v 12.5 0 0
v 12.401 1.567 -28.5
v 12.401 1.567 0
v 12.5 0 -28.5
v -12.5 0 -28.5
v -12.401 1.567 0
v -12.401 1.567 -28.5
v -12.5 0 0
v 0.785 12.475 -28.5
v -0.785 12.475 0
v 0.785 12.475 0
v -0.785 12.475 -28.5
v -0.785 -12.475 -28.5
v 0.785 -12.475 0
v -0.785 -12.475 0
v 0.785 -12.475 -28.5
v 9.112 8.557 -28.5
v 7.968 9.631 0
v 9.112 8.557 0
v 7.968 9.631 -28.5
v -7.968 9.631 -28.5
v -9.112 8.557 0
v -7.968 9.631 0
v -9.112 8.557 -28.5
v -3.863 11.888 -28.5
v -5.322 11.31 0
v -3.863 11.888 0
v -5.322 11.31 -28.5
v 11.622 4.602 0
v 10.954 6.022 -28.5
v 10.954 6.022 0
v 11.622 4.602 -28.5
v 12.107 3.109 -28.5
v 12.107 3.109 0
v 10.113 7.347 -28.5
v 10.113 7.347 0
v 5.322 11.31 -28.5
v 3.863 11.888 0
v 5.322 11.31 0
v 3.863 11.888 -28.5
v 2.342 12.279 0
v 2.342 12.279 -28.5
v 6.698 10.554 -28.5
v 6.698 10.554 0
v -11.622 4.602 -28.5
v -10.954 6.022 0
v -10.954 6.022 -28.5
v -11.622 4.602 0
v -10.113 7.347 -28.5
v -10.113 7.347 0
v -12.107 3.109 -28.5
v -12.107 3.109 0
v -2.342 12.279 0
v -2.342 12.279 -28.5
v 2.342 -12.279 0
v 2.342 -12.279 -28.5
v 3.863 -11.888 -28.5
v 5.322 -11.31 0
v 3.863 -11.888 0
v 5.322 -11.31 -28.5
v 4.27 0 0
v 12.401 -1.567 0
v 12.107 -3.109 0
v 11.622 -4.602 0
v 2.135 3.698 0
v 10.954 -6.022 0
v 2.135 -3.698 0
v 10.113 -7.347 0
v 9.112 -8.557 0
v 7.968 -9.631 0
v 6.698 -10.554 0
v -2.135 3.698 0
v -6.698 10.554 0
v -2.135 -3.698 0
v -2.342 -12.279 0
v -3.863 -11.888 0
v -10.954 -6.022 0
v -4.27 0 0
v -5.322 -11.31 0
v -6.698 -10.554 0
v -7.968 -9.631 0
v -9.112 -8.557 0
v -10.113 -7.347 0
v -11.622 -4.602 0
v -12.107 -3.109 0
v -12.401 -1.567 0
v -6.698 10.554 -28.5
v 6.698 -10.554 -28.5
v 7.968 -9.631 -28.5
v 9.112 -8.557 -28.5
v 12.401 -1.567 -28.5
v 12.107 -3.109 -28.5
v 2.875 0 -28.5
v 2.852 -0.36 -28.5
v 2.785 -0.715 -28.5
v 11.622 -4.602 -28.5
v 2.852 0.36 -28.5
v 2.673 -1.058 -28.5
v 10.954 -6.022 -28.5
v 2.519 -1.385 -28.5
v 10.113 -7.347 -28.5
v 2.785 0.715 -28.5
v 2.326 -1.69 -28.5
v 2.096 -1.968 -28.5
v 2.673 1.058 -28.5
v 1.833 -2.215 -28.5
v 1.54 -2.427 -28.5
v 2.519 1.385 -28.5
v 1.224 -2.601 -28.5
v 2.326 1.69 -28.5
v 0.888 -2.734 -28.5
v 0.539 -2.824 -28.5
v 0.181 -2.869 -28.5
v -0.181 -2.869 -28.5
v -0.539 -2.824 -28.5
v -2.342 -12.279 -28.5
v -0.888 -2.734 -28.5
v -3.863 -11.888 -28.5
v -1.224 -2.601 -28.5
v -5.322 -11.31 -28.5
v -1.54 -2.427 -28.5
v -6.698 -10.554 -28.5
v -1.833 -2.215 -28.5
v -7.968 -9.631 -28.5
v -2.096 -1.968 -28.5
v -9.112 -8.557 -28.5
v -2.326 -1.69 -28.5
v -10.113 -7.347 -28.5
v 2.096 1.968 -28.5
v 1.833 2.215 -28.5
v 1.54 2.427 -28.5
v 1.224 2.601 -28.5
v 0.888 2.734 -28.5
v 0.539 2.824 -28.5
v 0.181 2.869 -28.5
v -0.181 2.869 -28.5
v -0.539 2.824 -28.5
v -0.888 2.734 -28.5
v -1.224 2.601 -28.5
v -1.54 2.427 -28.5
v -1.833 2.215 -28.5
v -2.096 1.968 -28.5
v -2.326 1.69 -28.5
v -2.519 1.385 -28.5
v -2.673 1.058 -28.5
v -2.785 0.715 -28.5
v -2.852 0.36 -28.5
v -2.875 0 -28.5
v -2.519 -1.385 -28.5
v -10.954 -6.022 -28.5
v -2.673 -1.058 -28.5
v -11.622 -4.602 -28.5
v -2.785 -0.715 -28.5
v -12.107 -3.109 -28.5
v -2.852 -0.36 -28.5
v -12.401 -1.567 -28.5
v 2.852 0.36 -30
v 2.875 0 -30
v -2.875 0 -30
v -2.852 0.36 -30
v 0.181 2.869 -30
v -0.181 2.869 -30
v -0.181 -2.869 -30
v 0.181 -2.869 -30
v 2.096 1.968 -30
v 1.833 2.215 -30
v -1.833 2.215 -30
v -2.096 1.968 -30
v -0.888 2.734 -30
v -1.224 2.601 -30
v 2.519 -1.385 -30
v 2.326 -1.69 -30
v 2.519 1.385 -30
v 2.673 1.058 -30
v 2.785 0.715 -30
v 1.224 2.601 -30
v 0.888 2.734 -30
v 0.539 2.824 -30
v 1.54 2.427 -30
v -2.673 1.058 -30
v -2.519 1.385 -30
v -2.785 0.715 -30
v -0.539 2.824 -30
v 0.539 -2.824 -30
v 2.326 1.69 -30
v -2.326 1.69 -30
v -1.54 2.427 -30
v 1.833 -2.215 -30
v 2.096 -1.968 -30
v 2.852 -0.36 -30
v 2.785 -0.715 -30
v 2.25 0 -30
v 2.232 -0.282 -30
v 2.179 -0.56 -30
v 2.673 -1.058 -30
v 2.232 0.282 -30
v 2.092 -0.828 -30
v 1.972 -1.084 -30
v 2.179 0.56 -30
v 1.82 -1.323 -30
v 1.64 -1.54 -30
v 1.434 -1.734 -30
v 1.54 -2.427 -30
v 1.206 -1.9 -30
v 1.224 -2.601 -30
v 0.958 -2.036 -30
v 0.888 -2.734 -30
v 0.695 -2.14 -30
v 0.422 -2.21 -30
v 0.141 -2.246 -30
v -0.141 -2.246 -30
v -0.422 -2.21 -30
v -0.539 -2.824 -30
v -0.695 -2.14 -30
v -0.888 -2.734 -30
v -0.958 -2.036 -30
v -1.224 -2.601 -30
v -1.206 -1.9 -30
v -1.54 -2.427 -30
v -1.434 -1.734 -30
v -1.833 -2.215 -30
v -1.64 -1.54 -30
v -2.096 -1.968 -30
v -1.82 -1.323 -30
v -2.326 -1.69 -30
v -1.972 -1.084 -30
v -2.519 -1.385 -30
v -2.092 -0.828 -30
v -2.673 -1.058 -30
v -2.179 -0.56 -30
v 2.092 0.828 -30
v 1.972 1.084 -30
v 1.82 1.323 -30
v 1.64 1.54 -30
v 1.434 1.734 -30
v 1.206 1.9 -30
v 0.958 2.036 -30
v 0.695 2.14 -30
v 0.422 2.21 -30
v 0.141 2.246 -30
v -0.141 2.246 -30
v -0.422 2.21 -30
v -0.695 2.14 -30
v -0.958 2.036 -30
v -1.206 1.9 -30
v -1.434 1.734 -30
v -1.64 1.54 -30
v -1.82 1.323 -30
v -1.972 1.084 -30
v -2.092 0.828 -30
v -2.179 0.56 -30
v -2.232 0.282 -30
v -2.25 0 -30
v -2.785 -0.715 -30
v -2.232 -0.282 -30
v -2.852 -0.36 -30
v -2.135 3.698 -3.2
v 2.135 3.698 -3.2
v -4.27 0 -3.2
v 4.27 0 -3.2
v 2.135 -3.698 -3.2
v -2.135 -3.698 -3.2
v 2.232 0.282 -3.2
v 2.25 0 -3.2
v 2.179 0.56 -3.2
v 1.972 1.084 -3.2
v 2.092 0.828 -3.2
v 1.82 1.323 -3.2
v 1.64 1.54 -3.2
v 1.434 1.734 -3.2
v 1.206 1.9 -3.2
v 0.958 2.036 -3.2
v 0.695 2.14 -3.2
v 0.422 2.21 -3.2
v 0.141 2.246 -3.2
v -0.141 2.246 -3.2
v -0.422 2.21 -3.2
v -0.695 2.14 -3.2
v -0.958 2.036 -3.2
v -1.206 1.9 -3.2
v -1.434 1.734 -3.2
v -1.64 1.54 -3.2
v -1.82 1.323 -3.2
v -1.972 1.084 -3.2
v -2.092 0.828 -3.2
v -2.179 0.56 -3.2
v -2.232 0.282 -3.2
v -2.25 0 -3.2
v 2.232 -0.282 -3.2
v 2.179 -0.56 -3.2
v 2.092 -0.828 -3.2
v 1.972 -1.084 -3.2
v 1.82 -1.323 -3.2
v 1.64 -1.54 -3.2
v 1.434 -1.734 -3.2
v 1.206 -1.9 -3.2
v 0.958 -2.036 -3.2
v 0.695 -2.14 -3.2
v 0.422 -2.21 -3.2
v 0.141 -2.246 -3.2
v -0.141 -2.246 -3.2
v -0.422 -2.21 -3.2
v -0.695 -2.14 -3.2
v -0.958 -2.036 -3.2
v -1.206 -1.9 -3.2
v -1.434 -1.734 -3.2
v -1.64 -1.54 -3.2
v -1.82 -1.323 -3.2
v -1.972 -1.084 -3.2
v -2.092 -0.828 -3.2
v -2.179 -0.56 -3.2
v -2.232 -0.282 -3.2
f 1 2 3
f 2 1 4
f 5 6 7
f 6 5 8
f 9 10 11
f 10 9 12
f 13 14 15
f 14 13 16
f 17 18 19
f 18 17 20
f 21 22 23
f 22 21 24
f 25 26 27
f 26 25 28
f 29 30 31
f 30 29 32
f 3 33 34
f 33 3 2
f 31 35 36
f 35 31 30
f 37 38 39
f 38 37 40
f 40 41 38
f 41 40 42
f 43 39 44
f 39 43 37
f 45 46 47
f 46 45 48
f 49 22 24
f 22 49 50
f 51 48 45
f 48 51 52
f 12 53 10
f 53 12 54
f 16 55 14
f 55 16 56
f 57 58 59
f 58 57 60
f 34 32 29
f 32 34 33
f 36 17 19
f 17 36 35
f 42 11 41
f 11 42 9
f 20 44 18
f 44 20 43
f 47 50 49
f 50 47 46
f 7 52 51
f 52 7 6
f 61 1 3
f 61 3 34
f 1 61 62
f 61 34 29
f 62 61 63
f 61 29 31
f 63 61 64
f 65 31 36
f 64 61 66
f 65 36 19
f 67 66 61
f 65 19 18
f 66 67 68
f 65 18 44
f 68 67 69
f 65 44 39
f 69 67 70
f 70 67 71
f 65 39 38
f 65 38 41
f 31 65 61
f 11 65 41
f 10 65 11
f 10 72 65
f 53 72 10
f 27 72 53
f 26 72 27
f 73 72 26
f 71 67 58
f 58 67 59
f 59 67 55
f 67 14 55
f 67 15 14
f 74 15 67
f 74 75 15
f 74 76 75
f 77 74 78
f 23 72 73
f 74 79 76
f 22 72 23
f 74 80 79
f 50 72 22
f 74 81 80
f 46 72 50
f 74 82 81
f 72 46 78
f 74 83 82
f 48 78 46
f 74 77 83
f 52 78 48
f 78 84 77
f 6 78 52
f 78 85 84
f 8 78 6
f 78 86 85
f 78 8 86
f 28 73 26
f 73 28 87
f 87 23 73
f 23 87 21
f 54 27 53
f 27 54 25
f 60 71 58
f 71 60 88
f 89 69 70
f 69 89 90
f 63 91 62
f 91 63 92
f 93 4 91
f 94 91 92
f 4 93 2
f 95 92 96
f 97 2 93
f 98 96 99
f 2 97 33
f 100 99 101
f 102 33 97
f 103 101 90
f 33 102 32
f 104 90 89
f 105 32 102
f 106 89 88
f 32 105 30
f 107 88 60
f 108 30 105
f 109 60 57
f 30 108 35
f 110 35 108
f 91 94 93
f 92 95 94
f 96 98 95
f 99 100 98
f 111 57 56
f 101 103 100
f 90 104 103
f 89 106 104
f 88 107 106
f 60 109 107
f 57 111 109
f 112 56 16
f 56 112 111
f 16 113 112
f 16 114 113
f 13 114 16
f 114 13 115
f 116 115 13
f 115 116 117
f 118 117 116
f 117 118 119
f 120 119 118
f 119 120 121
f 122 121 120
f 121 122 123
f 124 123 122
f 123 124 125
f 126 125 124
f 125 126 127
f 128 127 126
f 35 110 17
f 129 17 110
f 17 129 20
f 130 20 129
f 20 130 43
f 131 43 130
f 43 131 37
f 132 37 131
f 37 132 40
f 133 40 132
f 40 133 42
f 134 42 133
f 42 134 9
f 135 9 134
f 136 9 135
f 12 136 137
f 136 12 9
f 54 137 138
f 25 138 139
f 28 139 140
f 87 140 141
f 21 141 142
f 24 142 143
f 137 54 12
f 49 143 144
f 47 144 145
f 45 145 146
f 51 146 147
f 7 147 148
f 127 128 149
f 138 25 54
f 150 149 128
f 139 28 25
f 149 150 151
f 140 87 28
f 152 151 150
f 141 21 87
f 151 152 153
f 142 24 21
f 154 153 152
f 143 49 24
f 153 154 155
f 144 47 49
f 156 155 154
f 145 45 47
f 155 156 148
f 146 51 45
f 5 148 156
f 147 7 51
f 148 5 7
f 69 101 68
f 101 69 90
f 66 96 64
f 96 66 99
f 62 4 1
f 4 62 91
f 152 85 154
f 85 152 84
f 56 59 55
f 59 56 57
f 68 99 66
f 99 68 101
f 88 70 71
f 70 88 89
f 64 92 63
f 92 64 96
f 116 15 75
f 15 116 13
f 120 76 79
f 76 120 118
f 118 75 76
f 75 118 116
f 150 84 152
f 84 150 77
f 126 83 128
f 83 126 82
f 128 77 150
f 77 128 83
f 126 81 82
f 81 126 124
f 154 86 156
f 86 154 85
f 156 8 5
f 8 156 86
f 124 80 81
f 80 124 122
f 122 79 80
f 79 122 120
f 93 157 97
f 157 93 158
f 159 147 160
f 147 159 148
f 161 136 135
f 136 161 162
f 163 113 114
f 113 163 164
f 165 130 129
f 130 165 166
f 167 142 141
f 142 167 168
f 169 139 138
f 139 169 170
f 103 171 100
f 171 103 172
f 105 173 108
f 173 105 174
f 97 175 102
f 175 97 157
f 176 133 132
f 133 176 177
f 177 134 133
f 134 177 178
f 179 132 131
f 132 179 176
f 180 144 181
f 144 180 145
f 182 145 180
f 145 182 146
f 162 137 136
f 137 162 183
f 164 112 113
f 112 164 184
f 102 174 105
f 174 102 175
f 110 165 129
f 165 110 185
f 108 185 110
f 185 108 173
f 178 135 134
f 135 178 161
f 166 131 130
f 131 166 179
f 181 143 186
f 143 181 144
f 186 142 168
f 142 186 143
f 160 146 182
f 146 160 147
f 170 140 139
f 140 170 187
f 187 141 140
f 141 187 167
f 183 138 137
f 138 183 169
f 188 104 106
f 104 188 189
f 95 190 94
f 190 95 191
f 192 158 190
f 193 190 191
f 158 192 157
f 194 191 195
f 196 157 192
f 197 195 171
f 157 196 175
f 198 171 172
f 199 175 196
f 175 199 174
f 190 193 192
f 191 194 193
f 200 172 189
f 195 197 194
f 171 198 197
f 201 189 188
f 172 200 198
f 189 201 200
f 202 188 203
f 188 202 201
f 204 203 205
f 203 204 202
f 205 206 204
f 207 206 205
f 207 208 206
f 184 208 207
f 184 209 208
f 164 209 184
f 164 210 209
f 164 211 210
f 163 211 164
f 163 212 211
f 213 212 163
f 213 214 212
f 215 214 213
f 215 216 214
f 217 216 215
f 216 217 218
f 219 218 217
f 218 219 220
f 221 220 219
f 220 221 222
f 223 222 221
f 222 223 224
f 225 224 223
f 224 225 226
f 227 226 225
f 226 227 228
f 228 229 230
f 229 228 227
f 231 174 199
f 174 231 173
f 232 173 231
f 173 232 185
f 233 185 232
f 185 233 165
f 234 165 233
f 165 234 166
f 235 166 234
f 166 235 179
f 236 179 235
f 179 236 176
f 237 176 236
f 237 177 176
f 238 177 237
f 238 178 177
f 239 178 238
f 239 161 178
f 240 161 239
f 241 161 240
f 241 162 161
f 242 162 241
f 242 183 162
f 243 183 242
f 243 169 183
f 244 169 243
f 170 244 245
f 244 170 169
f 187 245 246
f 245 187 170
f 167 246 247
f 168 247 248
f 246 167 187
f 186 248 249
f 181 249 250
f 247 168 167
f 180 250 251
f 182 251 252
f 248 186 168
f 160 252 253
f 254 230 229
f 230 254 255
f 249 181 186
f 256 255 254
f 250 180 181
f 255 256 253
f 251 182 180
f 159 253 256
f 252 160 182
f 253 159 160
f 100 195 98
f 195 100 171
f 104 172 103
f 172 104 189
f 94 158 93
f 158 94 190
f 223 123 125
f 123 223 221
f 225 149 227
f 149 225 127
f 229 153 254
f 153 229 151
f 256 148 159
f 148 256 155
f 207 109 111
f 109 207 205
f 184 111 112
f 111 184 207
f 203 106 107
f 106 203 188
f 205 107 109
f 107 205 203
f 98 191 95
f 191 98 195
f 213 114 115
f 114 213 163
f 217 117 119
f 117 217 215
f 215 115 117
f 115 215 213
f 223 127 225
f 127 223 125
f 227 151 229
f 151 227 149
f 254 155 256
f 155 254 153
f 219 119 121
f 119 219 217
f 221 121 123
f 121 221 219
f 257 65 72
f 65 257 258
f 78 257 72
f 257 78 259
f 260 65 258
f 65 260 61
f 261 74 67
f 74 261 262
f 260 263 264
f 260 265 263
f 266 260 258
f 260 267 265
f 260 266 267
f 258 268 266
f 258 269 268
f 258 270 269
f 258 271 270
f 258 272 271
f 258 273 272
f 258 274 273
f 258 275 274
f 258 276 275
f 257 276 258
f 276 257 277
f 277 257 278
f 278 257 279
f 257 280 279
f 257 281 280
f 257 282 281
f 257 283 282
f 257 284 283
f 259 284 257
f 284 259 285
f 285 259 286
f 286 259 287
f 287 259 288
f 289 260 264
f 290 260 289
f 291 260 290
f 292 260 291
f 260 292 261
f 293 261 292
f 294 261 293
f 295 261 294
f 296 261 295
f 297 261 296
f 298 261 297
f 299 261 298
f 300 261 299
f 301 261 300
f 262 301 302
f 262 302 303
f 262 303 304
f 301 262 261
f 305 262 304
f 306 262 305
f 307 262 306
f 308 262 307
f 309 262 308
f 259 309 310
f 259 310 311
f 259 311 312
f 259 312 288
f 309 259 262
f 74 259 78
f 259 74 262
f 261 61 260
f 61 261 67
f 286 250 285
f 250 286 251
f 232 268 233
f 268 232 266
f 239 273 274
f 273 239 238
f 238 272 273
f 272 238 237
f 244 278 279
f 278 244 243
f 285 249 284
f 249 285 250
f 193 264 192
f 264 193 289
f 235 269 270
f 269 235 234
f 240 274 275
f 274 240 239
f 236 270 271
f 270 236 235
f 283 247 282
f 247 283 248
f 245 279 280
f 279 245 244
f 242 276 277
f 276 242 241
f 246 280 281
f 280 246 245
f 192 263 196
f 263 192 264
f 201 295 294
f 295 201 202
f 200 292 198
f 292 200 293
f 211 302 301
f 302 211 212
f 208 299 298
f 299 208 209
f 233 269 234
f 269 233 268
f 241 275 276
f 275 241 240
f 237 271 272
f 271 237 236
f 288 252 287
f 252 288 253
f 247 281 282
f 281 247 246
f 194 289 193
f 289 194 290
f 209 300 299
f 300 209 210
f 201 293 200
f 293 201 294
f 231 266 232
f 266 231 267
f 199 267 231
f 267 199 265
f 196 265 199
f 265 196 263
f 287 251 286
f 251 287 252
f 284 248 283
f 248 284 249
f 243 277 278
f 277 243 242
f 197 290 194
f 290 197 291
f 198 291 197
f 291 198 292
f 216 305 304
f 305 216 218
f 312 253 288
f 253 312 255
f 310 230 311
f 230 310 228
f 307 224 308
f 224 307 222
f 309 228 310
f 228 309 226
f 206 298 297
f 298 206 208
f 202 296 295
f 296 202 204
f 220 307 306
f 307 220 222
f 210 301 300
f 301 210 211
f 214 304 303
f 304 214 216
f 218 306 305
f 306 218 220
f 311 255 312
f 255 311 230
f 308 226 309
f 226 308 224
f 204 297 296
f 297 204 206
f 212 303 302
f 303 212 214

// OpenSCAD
$fn = 50;

difference() {
	union() {
		translate(v = [0, 0, -28.5]) {
			cylinder(h = 28.5, r = 12.5);
		}
		#translate(v = [0, 0, -30.0]) {
			cylinder(h = 30, r = 2.875);
		}
	}
	union() {
		translate(v = [0, 0, 0]) {
			rotate(a = [0, 0, 0]) {
				difference() {
					union() {
						translate(v = [0, 0, -3.2]) {
							linear_extrude(height = 3.2) {
								polygon(points = [[4.2698, 0.0], [2.1349000000000005, 3.697755269078796], [-2.134899999999999, 3.6977552690787965], [-4.2698, 5.228996902999369e-16], [-2.134900000000002, -3.6977552690787956], [2.1348999999999974, -3.697755269078798]]);
							}
						}
					}
					union();
				}
			}
		}
		#translate(v = [0, 0, -100.0]) {
			cylinder(h = 200, r = 2.25);
		}
	}
}
